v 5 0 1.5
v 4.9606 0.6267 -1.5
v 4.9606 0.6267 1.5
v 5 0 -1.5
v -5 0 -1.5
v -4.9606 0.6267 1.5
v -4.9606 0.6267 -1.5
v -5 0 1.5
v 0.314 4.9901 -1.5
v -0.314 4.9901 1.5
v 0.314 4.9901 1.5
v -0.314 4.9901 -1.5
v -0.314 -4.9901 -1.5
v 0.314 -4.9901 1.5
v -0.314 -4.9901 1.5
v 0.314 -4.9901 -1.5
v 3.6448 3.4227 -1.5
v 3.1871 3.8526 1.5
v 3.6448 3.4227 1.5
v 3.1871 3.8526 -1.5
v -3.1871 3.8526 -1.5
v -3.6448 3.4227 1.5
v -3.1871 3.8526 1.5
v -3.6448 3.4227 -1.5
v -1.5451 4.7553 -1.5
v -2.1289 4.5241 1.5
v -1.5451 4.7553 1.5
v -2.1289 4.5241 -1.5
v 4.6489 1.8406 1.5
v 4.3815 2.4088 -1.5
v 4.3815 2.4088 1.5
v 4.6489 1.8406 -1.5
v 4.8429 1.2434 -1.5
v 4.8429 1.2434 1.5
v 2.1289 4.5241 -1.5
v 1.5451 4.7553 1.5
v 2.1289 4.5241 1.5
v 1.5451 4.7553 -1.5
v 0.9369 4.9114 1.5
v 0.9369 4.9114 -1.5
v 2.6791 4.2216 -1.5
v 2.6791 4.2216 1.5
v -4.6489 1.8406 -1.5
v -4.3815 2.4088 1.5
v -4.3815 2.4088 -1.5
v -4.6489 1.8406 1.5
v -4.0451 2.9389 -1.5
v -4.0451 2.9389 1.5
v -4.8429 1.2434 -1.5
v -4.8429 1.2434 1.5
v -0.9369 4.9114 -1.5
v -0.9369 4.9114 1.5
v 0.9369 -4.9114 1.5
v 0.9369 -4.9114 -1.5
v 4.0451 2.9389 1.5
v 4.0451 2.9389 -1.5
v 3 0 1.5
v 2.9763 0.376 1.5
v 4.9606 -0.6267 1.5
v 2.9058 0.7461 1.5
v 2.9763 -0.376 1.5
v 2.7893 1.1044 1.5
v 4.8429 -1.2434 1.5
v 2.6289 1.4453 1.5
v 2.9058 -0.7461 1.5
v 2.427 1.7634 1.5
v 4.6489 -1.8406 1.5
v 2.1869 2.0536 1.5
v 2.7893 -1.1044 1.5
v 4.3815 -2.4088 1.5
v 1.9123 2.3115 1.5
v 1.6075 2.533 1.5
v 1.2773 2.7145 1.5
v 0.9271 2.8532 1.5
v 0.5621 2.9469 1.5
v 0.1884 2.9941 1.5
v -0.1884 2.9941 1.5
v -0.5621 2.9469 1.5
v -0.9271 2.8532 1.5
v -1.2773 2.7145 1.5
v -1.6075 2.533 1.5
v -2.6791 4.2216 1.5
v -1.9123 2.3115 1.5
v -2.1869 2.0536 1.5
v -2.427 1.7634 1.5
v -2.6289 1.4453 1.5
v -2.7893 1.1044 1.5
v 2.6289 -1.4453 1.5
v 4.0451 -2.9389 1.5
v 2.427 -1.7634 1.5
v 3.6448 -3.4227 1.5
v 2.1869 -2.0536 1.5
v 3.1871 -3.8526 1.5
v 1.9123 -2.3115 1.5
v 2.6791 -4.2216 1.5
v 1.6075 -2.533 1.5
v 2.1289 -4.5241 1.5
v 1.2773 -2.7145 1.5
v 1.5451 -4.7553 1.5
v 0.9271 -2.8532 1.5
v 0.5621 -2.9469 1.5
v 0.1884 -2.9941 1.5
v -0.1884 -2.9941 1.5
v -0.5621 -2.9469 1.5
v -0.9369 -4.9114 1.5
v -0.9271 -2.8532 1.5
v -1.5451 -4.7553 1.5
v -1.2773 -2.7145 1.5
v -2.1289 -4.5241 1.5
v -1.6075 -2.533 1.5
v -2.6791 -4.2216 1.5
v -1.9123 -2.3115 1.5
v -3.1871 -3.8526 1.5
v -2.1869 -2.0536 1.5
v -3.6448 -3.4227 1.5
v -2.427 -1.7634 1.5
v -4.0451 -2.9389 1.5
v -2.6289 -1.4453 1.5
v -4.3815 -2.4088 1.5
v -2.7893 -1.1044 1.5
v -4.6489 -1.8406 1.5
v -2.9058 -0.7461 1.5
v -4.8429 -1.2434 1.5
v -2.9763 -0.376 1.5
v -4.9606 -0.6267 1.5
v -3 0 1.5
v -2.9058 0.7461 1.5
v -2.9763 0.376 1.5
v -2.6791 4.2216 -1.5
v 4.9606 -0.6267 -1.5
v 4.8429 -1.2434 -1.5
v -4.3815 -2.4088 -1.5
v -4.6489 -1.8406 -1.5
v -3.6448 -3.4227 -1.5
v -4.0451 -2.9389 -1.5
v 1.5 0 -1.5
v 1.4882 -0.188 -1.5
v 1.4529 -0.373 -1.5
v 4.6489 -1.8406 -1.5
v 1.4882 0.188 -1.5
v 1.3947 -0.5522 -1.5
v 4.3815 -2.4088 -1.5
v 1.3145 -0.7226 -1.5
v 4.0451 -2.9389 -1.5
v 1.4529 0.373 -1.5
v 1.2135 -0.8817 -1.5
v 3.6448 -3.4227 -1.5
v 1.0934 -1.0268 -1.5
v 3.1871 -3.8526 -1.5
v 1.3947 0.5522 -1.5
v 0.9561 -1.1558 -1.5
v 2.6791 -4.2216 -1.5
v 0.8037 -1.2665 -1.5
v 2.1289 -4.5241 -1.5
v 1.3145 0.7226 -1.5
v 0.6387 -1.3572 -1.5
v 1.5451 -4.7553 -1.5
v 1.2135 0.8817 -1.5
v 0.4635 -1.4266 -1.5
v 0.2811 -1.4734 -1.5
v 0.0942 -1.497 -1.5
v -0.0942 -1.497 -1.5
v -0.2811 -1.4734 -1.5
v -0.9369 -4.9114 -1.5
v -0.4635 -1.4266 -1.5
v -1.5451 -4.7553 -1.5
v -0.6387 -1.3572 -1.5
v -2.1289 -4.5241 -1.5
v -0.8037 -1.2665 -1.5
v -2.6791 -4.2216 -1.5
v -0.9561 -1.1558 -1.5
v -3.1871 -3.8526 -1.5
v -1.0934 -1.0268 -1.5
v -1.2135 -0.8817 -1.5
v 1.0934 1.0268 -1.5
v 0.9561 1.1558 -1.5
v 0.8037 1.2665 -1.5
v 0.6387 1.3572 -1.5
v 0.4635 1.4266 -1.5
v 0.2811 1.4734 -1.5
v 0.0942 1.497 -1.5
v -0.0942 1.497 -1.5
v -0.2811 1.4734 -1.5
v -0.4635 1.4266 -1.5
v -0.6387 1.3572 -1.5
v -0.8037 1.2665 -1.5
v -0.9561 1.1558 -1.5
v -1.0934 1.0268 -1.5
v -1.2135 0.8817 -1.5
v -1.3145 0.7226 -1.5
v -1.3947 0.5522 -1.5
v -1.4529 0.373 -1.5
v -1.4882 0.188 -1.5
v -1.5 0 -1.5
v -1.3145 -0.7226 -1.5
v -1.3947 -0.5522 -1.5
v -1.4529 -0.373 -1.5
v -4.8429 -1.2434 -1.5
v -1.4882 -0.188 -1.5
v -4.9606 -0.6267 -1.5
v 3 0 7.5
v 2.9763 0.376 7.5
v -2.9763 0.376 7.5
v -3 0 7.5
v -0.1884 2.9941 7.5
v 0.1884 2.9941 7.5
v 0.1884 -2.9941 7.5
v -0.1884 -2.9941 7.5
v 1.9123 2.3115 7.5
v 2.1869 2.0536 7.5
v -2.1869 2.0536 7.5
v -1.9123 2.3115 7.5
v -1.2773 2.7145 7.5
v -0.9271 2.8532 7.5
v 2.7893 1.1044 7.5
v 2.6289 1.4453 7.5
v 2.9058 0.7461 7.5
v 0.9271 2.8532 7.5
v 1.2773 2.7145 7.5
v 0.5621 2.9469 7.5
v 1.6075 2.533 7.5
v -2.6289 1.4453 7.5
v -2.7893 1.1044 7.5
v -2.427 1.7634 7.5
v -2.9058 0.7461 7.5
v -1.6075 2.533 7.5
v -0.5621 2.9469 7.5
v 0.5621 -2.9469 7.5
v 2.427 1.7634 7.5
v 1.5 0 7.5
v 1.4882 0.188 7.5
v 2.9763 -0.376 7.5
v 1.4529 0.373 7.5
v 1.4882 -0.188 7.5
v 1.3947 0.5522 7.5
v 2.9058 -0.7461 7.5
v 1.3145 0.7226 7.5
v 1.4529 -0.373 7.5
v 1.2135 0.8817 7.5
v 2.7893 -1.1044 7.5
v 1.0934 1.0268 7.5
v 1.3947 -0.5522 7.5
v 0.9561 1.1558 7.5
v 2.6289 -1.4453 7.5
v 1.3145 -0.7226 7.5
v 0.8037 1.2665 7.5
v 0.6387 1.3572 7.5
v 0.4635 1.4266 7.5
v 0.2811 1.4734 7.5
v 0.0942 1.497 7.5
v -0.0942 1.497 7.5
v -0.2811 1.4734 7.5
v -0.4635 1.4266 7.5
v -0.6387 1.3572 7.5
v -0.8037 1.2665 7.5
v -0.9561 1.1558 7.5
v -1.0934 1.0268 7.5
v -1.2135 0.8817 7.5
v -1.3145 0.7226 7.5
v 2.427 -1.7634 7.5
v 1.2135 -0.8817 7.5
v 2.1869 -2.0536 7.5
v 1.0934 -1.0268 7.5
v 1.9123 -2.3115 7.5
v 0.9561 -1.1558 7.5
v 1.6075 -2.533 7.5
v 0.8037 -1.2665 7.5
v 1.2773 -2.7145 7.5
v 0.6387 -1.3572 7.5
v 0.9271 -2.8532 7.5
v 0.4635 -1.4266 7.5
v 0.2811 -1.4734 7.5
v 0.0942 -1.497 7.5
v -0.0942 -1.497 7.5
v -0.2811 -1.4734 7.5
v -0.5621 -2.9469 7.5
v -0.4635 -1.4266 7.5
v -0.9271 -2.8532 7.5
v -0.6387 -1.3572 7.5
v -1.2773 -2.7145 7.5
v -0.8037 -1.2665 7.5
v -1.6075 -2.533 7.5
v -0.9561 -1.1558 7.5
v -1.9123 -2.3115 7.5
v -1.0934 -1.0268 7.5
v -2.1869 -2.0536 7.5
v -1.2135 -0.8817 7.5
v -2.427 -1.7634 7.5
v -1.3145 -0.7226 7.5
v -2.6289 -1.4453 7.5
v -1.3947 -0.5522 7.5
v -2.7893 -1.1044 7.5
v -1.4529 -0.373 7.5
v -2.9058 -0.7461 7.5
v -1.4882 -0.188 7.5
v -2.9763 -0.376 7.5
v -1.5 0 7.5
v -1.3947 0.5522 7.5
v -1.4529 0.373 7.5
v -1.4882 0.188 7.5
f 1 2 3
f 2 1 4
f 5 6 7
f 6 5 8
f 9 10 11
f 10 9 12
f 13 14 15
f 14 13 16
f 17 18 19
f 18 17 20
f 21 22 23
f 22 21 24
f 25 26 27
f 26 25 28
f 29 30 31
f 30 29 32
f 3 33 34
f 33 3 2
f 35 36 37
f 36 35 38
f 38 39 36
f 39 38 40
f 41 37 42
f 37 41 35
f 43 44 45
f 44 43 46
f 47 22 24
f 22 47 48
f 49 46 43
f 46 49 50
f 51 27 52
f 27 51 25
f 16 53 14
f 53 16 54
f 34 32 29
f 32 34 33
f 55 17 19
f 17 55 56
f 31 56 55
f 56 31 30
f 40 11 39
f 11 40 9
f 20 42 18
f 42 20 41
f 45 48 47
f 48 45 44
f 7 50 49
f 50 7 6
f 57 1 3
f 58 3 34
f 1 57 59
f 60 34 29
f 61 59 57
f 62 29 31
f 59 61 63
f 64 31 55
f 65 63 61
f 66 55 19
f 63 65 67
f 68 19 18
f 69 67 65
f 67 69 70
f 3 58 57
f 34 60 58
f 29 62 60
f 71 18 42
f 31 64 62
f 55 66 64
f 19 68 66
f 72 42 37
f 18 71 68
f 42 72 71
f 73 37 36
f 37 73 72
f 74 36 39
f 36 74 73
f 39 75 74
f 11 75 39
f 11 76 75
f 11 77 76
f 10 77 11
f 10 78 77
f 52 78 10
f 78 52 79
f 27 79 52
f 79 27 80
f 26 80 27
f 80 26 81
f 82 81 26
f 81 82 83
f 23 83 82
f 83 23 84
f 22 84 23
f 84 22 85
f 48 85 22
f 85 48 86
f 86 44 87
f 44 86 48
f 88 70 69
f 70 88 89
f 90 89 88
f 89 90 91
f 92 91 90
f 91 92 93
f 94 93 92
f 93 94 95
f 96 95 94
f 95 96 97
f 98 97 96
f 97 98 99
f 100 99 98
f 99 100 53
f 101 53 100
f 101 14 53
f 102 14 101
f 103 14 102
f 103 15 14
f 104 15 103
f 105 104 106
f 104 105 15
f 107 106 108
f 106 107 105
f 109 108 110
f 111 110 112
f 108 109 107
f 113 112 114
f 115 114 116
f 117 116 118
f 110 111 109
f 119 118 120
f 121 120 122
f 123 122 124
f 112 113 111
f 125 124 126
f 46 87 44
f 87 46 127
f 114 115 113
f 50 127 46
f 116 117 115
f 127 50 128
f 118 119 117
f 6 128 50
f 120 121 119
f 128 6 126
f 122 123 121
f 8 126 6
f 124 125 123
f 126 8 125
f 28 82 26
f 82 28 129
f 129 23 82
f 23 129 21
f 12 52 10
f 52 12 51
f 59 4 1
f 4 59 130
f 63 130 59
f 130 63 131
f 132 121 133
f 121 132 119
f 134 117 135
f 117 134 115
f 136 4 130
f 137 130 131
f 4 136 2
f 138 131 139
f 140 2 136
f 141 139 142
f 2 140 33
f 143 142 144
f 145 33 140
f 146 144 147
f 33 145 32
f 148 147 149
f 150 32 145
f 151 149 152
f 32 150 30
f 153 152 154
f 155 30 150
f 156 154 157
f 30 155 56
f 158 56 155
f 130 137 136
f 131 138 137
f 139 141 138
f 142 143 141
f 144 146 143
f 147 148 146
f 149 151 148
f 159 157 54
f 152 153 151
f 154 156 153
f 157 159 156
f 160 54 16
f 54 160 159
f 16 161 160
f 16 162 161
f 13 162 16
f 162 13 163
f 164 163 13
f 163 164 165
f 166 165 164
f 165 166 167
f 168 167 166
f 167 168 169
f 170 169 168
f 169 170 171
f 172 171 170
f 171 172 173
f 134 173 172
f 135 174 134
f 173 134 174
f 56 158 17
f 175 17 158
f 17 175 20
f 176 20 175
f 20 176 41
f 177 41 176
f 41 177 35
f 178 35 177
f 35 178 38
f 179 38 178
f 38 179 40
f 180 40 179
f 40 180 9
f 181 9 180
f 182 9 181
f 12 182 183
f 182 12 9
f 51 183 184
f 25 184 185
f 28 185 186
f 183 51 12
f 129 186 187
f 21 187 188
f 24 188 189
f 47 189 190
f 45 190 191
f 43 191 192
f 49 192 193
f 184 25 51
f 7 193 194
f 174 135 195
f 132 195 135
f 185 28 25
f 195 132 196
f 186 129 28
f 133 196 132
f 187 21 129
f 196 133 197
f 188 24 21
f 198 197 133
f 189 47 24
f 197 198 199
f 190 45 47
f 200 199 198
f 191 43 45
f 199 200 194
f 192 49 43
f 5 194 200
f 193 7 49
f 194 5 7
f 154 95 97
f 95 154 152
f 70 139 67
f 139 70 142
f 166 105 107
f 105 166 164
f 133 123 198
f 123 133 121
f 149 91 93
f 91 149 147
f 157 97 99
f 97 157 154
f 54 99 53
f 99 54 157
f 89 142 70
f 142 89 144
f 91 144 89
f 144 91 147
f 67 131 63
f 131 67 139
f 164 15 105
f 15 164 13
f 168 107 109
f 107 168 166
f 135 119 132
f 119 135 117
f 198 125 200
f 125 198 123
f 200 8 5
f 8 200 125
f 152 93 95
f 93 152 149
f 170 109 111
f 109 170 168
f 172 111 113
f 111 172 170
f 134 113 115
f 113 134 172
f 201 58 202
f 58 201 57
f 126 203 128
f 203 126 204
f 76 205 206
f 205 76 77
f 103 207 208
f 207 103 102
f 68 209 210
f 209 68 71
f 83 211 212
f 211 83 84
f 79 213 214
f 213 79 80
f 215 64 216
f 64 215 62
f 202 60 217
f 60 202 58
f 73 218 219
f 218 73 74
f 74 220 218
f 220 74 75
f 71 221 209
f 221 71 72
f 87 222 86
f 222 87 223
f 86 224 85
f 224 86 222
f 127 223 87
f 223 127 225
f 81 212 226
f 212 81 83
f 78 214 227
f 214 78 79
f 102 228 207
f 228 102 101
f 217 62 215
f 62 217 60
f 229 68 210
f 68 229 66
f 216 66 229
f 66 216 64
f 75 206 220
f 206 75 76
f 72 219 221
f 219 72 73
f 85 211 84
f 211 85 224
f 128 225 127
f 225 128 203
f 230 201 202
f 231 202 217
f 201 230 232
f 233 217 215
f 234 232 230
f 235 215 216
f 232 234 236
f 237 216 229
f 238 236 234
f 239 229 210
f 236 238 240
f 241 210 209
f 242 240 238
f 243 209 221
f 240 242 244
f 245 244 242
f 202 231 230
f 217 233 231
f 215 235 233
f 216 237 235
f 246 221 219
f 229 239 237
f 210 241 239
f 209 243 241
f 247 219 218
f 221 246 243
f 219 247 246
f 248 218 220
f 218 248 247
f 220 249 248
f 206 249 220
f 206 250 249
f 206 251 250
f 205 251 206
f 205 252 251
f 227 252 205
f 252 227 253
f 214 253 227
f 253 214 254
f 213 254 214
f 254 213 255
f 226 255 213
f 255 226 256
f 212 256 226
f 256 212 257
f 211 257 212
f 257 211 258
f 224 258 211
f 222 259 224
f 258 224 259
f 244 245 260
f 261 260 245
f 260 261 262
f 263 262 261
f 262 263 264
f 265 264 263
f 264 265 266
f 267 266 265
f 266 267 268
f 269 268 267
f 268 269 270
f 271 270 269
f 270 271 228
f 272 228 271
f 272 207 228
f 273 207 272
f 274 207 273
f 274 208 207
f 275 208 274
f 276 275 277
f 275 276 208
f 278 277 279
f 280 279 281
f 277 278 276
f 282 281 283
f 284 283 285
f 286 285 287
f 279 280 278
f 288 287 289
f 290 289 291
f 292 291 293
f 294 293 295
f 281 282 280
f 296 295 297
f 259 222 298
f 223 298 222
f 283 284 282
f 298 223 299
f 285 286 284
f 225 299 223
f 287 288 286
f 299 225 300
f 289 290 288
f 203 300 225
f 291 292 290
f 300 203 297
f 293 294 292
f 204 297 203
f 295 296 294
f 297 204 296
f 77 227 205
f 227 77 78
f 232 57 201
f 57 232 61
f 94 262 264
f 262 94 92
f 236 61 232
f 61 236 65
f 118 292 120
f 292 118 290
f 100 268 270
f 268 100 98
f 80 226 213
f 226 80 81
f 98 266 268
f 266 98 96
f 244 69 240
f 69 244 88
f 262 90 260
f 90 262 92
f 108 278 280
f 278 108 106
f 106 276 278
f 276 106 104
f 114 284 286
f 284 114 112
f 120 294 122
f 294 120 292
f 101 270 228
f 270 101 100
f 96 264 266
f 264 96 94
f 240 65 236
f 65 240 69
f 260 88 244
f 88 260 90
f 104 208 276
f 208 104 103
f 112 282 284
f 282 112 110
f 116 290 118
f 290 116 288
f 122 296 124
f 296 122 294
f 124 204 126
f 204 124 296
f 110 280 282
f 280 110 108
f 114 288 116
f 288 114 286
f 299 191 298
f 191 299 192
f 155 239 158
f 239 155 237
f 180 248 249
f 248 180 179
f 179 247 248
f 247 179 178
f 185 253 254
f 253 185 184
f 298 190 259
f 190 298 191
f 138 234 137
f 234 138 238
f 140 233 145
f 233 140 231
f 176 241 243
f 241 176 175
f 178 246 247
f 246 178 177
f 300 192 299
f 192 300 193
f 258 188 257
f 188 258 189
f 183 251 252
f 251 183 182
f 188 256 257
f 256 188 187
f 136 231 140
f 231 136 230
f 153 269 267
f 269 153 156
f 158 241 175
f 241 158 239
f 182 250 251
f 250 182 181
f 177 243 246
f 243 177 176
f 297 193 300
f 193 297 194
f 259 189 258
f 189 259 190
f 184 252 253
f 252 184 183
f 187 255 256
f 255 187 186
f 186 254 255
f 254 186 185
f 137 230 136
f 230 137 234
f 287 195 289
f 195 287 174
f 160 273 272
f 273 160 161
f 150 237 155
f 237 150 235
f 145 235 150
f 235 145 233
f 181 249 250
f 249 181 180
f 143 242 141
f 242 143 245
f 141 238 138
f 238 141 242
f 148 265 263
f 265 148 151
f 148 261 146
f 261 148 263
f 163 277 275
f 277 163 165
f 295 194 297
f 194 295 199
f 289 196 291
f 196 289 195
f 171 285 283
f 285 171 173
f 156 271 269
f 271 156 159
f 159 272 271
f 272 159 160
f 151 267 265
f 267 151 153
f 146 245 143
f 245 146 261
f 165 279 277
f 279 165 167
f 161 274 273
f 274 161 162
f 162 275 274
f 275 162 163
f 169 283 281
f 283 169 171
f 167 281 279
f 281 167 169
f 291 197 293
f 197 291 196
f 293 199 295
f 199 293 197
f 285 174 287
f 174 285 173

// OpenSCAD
$fn = 50;


difference() {
	union() {
		translate(v = [0, 0, -1.5000000000]) {
			rotate(a = [0, 0, 0]) {
				cylinder(h = 3, r = 5.0000000000);
			}
		}
		translate(v = [0, 0, -1.5000000000]) {
			rotate(a = [0, 0, 0]) {
				cylinder(h = 9, r = 3.0000000000);
			}
		}
	}
	union() {
		translate(v = [0, 0, -125.0000000000]) {
			rotate(a = [0, 0, 0]) {
				cylinder(h = 250, r = 1.5000000000);
			}
		}
	}
}
